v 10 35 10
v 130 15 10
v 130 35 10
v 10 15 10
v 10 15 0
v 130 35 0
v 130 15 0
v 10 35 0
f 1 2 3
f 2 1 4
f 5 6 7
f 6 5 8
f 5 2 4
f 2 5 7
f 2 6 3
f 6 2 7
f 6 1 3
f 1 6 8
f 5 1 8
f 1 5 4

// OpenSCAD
// Define dimensions for the rectangular bar
length = 120;  // Adjusted length to match the original model
width = 20;    // Width remains the same
height = 10;   // Height remains the same

// Adjust rotation and position to match the original model
translate([10, 15, 0])  // Lowered the bar along the vertical axis
rotate([0, 0, 0])       // Removed angular tilt to align horizontally
cube([length, width, height]);
